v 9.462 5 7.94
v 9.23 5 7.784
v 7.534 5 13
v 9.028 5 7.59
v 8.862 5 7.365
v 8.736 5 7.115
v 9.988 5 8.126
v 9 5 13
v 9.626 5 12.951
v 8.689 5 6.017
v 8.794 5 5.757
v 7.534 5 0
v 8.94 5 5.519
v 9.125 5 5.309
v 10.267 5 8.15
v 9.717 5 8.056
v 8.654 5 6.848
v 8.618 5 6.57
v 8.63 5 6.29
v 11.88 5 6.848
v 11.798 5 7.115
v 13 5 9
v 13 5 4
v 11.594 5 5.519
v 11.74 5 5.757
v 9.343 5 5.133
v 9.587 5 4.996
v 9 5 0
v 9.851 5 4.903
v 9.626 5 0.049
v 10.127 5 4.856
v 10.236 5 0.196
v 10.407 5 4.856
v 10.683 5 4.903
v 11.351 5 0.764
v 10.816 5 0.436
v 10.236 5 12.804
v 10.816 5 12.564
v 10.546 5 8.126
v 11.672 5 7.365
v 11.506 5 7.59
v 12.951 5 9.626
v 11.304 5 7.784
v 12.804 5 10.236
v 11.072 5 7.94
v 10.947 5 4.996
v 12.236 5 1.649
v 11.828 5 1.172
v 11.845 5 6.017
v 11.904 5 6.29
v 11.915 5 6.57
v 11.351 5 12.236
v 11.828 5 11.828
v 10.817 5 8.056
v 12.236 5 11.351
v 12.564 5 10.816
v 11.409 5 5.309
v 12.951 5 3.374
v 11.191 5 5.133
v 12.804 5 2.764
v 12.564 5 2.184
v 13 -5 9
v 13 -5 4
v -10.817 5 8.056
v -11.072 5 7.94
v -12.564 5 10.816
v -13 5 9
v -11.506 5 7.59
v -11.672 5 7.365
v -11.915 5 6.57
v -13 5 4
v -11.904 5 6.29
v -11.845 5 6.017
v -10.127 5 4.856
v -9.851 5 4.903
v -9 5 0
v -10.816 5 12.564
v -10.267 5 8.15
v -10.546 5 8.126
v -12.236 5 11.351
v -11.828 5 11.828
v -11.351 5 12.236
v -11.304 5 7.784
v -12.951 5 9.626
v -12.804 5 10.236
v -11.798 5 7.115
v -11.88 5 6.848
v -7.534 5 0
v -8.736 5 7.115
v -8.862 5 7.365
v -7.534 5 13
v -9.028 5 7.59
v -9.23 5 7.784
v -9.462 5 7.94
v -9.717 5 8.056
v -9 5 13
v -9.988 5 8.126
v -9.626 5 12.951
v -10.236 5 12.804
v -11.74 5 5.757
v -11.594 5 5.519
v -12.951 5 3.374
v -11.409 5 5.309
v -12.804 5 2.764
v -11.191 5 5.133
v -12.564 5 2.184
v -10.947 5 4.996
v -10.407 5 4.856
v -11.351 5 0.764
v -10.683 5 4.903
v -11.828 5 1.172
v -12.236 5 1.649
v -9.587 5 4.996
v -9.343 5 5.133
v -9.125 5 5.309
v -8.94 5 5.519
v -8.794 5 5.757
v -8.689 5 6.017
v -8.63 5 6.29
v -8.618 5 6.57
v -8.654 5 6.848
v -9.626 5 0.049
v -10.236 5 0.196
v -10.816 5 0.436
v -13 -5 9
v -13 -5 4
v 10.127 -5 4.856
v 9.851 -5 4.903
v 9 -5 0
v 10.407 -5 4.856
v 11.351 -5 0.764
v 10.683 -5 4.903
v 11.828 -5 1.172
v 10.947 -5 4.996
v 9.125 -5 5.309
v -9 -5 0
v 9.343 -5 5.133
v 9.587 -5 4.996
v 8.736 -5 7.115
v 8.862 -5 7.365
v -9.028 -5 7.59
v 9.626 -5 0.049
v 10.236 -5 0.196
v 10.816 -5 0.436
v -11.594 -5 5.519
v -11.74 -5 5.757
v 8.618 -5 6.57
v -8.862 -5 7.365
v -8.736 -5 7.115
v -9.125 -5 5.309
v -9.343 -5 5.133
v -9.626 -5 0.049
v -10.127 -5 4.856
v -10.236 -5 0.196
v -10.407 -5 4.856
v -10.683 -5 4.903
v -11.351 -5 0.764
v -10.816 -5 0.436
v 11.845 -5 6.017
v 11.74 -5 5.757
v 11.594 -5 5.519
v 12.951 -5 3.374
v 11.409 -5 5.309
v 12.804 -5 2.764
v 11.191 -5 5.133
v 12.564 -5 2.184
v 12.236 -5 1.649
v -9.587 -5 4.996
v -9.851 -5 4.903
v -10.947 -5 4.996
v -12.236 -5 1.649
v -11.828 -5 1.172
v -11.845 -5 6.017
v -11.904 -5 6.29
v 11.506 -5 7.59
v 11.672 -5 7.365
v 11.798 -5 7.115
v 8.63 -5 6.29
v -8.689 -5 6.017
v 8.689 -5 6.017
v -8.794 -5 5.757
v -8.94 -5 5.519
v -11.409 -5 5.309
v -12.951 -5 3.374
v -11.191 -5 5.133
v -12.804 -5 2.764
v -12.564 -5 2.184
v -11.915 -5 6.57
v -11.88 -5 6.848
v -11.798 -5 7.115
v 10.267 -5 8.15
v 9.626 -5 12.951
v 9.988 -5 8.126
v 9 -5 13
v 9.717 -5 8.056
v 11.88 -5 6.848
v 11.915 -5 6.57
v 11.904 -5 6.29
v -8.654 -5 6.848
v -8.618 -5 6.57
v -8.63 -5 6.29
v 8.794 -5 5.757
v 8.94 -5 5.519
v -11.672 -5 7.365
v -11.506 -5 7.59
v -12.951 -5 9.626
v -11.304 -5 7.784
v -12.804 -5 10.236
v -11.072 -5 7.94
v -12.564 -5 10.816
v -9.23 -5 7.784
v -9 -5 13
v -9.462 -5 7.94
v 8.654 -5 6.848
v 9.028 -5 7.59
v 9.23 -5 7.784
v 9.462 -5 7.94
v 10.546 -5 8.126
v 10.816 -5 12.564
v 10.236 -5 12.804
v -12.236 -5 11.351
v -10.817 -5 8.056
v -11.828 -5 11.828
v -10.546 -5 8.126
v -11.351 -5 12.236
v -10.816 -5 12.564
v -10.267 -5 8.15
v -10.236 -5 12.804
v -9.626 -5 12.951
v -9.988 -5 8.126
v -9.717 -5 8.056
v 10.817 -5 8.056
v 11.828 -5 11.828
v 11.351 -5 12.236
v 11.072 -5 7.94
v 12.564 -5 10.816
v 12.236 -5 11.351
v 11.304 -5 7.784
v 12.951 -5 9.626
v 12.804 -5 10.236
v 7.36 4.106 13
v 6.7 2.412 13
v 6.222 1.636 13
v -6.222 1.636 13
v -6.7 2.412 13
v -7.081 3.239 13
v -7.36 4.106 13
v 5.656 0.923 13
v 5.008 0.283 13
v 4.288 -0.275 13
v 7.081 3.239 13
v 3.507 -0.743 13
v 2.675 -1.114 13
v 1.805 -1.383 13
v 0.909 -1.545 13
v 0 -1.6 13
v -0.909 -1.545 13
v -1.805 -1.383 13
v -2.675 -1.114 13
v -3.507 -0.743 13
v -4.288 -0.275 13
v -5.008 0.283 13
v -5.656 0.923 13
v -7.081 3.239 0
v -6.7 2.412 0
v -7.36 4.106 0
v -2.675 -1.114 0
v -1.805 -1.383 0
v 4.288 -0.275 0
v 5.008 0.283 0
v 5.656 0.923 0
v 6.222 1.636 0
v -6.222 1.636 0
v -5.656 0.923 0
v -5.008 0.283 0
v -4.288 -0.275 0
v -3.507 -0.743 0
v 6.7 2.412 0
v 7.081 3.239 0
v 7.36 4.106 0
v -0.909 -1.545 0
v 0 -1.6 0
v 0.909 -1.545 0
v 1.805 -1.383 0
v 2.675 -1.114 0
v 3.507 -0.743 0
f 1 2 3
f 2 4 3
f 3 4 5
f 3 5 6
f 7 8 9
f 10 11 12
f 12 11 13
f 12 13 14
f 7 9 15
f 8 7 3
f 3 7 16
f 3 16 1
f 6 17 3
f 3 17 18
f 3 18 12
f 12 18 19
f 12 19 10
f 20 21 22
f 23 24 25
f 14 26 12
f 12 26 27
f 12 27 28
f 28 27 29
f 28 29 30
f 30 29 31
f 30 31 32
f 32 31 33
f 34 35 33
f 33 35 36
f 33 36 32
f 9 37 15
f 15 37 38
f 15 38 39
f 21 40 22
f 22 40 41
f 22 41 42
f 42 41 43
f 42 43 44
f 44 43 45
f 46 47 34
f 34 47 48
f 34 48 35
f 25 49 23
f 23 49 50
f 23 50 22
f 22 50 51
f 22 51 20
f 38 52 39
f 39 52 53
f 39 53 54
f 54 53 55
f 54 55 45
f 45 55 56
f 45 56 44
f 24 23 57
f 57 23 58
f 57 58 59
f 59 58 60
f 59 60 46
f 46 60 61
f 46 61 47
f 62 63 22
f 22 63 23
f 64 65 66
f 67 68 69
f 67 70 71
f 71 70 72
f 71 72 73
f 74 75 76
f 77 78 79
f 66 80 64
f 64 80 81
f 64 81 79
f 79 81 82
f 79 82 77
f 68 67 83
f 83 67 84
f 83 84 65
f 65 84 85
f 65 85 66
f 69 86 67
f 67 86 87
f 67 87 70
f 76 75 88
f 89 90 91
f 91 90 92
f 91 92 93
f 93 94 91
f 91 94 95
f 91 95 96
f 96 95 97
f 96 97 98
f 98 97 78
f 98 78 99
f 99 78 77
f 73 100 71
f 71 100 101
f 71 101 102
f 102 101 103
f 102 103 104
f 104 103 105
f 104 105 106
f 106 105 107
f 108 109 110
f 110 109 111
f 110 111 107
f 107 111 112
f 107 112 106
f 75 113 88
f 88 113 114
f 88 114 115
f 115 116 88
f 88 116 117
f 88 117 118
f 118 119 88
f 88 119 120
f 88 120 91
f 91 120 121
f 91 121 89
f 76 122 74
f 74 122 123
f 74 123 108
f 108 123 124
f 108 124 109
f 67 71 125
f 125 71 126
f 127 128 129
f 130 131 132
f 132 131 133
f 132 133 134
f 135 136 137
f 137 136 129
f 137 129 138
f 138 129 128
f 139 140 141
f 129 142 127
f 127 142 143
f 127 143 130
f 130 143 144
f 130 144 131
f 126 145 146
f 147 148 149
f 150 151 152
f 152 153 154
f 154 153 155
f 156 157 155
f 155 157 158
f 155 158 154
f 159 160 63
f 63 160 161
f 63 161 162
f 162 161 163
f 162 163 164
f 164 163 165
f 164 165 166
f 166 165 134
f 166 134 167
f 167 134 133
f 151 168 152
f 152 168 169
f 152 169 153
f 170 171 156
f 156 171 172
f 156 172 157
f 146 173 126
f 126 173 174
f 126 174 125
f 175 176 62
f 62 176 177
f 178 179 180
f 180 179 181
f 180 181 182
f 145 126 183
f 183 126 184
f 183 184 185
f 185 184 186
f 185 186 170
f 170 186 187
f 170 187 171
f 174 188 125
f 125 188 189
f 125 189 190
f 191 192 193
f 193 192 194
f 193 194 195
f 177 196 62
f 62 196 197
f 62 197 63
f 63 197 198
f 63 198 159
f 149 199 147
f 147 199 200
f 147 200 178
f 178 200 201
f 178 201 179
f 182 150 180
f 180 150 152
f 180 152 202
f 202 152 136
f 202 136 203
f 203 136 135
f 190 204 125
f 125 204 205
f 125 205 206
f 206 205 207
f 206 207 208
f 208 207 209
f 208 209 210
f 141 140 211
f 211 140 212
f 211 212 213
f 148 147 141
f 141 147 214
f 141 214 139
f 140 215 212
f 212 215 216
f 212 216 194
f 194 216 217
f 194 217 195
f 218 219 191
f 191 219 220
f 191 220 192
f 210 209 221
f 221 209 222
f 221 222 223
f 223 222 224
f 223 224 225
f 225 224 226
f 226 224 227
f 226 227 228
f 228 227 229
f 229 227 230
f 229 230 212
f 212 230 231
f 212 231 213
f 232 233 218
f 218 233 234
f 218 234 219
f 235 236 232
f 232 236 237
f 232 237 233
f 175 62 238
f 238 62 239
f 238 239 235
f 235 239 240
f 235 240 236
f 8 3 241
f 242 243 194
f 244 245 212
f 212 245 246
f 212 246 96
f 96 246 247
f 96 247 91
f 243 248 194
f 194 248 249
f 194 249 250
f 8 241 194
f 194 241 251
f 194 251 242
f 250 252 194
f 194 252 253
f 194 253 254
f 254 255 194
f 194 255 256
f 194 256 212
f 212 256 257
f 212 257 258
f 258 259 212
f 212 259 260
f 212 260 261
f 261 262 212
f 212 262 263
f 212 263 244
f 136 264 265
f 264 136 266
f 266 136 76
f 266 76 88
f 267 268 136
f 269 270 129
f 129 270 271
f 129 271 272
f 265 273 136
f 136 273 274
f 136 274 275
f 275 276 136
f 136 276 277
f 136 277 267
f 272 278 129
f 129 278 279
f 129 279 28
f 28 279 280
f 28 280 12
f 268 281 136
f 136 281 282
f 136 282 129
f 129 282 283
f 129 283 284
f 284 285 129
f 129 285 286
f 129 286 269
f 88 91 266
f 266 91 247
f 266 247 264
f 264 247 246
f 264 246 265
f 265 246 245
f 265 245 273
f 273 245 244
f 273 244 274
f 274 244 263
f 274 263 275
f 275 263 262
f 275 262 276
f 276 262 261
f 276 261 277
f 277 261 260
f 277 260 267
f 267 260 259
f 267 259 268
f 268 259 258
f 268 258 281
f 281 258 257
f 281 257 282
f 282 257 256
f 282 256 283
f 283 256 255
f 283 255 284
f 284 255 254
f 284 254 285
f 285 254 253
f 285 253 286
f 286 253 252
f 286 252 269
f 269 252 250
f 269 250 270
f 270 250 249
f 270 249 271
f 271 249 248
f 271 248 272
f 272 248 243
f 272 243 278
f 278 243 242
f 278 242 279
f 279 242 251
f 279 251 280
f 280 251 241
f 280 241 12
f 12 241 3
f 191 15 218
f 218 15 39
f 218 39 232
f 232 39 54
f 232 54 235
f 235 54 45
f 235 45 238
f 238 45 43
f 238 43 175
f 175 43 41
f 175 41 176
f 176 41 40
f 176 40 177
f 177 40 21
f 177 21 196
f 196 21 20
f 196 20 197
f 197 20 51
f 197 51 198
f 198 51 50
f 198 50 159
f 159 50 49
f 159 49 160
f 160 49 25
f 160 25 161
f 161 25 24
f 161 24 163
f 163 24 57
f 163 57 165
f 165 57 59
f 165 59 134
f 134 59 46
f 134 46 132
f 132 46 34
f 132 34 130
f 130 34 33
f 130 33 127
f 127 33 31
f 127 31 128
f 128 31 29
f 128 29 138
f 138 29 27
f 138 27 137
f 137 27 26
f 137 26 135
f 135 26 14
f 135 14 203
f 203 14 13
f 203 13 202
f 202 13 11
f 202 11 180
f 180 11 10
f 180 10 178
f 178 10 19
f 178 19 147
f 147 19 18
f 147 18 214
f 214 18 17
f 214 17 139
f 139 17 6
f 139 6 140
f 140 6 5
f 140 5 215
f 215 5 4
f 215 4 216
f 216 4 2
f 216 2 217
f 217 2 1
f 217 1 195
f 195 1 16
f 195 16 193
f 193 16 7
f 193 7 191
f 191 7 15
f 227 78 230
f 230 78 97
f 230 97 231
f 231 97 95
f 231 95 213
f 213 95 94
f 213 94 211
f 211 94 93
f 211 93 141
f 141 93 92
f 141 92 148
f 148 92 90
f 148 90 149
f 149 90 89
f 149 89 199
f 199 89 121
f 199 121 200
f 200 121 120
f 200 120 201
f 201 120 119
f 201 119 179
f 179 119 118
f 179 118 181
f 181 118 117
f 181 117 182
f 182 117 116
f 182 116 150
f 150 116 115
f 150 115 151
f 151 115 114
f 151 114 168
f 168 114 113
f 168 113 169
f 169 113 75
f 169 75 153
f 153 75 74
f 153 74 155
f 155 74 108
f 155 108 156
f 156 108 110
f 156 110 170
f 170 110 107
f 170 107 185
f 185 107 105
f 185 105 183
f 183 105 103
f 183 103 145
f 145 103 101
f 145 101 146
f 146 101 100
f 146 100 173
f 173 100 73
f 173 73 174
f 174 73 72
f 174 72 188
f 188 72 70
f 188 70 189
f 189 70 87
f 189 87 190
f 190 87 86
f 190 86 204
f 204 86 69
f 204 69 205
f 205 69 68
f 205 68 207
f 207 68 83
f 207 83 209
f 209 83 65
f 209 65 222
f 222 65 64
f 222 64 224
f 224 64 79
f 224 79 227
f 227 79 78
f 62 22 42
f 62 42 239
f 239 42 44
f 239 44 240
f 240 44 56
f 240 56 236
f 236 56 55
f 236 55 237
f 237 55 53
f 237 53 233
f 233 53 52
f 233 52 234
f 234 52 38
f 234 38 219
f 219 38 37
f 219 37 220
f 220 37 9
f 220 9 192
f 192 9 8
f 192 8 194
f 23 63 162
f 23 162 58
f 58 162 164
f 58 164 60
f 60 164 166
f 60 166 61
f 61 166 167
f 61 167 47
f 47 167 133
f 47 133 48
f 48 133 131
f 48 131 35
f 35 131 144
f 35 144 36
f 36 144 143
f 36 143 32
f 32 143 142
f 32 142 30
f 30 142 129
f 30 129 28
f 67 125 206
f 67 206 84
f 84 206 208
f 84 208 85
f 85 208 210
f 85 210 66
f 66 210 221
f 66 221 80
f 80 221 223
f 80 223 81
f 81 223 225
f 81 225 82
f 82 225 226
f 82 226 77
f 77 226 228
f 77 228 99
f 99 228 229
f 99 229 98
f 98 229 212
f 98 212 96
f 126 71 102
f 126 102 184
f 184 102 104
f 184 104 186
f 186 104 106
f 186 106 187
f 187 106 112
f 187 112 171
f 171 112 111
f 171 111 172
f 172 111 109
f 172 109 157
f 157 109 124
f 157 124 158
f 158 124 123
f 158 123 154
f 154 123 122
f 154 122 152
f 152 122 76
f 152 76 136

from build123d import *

# Parameters (mm, degrees)
SKETCH1_W           = 26
SKETCH1_H           = 10
BOSS_EXTRUDE1_DEPTH = 13
SKETCH2_R           = 7.6
CUT_EXTRUDE1_DEPTH  = 20.052558883
SKETCH3_R           = 1.65
CUT_EXTRUDE2_DEPTH  = 10
FILLET2_R           = 4


with BuildPart() as part:
    # Sketch1 → Boss-Extrude1 (new body)
    with BuildSketch(Plane.XY):
        Rectangle(SKETCH1_W, SKETCH1_H)
    extrude(amount=BOSS_EXTRUDE1_DEPTH)

    # Sketch2 → Cut-Extrude1 (cut, through all)
    with BuildSketch(Plane.XY.offset(13)):
        with Locations((0, 6)):
            Circle(SKETCH2_R)
    extrude(amount=-CUT_EXTRUDE1_DEPTH, mode=Mode.SUBTRACT)

    # Sketch3 → Cut-Extrude2 (cut)
    with BuildSketch(Plane(origin=(0, 5, 0), x_dir=(1, 0, 0), z_dir=(0, 1, 0))):
        with Locations(Location((-10.26696164, -6.5, 0), (0, 0, 270))):
            Circle(SKETCH3_R)
        with Locations(Location((10.26696164, -6.5, 0), (0, 0, 270))):
            Circle(SKETCH3_R)
    extrude(amount=-CUT_EXTRUDE2_DEPTH, mode=Mode.SUBTRACT)

    # Fillet2
    fillet2_edges = [part.edges().sort_by_distance(p)[0] for p in [
        (-13, 0, 13),
        (13, 0, 13),
        (-13, 0, 0),
        (13, 0, 0),
    ]]
    fillet(fillet2_edges, radius=FILLET2_R)


solid = part.part
